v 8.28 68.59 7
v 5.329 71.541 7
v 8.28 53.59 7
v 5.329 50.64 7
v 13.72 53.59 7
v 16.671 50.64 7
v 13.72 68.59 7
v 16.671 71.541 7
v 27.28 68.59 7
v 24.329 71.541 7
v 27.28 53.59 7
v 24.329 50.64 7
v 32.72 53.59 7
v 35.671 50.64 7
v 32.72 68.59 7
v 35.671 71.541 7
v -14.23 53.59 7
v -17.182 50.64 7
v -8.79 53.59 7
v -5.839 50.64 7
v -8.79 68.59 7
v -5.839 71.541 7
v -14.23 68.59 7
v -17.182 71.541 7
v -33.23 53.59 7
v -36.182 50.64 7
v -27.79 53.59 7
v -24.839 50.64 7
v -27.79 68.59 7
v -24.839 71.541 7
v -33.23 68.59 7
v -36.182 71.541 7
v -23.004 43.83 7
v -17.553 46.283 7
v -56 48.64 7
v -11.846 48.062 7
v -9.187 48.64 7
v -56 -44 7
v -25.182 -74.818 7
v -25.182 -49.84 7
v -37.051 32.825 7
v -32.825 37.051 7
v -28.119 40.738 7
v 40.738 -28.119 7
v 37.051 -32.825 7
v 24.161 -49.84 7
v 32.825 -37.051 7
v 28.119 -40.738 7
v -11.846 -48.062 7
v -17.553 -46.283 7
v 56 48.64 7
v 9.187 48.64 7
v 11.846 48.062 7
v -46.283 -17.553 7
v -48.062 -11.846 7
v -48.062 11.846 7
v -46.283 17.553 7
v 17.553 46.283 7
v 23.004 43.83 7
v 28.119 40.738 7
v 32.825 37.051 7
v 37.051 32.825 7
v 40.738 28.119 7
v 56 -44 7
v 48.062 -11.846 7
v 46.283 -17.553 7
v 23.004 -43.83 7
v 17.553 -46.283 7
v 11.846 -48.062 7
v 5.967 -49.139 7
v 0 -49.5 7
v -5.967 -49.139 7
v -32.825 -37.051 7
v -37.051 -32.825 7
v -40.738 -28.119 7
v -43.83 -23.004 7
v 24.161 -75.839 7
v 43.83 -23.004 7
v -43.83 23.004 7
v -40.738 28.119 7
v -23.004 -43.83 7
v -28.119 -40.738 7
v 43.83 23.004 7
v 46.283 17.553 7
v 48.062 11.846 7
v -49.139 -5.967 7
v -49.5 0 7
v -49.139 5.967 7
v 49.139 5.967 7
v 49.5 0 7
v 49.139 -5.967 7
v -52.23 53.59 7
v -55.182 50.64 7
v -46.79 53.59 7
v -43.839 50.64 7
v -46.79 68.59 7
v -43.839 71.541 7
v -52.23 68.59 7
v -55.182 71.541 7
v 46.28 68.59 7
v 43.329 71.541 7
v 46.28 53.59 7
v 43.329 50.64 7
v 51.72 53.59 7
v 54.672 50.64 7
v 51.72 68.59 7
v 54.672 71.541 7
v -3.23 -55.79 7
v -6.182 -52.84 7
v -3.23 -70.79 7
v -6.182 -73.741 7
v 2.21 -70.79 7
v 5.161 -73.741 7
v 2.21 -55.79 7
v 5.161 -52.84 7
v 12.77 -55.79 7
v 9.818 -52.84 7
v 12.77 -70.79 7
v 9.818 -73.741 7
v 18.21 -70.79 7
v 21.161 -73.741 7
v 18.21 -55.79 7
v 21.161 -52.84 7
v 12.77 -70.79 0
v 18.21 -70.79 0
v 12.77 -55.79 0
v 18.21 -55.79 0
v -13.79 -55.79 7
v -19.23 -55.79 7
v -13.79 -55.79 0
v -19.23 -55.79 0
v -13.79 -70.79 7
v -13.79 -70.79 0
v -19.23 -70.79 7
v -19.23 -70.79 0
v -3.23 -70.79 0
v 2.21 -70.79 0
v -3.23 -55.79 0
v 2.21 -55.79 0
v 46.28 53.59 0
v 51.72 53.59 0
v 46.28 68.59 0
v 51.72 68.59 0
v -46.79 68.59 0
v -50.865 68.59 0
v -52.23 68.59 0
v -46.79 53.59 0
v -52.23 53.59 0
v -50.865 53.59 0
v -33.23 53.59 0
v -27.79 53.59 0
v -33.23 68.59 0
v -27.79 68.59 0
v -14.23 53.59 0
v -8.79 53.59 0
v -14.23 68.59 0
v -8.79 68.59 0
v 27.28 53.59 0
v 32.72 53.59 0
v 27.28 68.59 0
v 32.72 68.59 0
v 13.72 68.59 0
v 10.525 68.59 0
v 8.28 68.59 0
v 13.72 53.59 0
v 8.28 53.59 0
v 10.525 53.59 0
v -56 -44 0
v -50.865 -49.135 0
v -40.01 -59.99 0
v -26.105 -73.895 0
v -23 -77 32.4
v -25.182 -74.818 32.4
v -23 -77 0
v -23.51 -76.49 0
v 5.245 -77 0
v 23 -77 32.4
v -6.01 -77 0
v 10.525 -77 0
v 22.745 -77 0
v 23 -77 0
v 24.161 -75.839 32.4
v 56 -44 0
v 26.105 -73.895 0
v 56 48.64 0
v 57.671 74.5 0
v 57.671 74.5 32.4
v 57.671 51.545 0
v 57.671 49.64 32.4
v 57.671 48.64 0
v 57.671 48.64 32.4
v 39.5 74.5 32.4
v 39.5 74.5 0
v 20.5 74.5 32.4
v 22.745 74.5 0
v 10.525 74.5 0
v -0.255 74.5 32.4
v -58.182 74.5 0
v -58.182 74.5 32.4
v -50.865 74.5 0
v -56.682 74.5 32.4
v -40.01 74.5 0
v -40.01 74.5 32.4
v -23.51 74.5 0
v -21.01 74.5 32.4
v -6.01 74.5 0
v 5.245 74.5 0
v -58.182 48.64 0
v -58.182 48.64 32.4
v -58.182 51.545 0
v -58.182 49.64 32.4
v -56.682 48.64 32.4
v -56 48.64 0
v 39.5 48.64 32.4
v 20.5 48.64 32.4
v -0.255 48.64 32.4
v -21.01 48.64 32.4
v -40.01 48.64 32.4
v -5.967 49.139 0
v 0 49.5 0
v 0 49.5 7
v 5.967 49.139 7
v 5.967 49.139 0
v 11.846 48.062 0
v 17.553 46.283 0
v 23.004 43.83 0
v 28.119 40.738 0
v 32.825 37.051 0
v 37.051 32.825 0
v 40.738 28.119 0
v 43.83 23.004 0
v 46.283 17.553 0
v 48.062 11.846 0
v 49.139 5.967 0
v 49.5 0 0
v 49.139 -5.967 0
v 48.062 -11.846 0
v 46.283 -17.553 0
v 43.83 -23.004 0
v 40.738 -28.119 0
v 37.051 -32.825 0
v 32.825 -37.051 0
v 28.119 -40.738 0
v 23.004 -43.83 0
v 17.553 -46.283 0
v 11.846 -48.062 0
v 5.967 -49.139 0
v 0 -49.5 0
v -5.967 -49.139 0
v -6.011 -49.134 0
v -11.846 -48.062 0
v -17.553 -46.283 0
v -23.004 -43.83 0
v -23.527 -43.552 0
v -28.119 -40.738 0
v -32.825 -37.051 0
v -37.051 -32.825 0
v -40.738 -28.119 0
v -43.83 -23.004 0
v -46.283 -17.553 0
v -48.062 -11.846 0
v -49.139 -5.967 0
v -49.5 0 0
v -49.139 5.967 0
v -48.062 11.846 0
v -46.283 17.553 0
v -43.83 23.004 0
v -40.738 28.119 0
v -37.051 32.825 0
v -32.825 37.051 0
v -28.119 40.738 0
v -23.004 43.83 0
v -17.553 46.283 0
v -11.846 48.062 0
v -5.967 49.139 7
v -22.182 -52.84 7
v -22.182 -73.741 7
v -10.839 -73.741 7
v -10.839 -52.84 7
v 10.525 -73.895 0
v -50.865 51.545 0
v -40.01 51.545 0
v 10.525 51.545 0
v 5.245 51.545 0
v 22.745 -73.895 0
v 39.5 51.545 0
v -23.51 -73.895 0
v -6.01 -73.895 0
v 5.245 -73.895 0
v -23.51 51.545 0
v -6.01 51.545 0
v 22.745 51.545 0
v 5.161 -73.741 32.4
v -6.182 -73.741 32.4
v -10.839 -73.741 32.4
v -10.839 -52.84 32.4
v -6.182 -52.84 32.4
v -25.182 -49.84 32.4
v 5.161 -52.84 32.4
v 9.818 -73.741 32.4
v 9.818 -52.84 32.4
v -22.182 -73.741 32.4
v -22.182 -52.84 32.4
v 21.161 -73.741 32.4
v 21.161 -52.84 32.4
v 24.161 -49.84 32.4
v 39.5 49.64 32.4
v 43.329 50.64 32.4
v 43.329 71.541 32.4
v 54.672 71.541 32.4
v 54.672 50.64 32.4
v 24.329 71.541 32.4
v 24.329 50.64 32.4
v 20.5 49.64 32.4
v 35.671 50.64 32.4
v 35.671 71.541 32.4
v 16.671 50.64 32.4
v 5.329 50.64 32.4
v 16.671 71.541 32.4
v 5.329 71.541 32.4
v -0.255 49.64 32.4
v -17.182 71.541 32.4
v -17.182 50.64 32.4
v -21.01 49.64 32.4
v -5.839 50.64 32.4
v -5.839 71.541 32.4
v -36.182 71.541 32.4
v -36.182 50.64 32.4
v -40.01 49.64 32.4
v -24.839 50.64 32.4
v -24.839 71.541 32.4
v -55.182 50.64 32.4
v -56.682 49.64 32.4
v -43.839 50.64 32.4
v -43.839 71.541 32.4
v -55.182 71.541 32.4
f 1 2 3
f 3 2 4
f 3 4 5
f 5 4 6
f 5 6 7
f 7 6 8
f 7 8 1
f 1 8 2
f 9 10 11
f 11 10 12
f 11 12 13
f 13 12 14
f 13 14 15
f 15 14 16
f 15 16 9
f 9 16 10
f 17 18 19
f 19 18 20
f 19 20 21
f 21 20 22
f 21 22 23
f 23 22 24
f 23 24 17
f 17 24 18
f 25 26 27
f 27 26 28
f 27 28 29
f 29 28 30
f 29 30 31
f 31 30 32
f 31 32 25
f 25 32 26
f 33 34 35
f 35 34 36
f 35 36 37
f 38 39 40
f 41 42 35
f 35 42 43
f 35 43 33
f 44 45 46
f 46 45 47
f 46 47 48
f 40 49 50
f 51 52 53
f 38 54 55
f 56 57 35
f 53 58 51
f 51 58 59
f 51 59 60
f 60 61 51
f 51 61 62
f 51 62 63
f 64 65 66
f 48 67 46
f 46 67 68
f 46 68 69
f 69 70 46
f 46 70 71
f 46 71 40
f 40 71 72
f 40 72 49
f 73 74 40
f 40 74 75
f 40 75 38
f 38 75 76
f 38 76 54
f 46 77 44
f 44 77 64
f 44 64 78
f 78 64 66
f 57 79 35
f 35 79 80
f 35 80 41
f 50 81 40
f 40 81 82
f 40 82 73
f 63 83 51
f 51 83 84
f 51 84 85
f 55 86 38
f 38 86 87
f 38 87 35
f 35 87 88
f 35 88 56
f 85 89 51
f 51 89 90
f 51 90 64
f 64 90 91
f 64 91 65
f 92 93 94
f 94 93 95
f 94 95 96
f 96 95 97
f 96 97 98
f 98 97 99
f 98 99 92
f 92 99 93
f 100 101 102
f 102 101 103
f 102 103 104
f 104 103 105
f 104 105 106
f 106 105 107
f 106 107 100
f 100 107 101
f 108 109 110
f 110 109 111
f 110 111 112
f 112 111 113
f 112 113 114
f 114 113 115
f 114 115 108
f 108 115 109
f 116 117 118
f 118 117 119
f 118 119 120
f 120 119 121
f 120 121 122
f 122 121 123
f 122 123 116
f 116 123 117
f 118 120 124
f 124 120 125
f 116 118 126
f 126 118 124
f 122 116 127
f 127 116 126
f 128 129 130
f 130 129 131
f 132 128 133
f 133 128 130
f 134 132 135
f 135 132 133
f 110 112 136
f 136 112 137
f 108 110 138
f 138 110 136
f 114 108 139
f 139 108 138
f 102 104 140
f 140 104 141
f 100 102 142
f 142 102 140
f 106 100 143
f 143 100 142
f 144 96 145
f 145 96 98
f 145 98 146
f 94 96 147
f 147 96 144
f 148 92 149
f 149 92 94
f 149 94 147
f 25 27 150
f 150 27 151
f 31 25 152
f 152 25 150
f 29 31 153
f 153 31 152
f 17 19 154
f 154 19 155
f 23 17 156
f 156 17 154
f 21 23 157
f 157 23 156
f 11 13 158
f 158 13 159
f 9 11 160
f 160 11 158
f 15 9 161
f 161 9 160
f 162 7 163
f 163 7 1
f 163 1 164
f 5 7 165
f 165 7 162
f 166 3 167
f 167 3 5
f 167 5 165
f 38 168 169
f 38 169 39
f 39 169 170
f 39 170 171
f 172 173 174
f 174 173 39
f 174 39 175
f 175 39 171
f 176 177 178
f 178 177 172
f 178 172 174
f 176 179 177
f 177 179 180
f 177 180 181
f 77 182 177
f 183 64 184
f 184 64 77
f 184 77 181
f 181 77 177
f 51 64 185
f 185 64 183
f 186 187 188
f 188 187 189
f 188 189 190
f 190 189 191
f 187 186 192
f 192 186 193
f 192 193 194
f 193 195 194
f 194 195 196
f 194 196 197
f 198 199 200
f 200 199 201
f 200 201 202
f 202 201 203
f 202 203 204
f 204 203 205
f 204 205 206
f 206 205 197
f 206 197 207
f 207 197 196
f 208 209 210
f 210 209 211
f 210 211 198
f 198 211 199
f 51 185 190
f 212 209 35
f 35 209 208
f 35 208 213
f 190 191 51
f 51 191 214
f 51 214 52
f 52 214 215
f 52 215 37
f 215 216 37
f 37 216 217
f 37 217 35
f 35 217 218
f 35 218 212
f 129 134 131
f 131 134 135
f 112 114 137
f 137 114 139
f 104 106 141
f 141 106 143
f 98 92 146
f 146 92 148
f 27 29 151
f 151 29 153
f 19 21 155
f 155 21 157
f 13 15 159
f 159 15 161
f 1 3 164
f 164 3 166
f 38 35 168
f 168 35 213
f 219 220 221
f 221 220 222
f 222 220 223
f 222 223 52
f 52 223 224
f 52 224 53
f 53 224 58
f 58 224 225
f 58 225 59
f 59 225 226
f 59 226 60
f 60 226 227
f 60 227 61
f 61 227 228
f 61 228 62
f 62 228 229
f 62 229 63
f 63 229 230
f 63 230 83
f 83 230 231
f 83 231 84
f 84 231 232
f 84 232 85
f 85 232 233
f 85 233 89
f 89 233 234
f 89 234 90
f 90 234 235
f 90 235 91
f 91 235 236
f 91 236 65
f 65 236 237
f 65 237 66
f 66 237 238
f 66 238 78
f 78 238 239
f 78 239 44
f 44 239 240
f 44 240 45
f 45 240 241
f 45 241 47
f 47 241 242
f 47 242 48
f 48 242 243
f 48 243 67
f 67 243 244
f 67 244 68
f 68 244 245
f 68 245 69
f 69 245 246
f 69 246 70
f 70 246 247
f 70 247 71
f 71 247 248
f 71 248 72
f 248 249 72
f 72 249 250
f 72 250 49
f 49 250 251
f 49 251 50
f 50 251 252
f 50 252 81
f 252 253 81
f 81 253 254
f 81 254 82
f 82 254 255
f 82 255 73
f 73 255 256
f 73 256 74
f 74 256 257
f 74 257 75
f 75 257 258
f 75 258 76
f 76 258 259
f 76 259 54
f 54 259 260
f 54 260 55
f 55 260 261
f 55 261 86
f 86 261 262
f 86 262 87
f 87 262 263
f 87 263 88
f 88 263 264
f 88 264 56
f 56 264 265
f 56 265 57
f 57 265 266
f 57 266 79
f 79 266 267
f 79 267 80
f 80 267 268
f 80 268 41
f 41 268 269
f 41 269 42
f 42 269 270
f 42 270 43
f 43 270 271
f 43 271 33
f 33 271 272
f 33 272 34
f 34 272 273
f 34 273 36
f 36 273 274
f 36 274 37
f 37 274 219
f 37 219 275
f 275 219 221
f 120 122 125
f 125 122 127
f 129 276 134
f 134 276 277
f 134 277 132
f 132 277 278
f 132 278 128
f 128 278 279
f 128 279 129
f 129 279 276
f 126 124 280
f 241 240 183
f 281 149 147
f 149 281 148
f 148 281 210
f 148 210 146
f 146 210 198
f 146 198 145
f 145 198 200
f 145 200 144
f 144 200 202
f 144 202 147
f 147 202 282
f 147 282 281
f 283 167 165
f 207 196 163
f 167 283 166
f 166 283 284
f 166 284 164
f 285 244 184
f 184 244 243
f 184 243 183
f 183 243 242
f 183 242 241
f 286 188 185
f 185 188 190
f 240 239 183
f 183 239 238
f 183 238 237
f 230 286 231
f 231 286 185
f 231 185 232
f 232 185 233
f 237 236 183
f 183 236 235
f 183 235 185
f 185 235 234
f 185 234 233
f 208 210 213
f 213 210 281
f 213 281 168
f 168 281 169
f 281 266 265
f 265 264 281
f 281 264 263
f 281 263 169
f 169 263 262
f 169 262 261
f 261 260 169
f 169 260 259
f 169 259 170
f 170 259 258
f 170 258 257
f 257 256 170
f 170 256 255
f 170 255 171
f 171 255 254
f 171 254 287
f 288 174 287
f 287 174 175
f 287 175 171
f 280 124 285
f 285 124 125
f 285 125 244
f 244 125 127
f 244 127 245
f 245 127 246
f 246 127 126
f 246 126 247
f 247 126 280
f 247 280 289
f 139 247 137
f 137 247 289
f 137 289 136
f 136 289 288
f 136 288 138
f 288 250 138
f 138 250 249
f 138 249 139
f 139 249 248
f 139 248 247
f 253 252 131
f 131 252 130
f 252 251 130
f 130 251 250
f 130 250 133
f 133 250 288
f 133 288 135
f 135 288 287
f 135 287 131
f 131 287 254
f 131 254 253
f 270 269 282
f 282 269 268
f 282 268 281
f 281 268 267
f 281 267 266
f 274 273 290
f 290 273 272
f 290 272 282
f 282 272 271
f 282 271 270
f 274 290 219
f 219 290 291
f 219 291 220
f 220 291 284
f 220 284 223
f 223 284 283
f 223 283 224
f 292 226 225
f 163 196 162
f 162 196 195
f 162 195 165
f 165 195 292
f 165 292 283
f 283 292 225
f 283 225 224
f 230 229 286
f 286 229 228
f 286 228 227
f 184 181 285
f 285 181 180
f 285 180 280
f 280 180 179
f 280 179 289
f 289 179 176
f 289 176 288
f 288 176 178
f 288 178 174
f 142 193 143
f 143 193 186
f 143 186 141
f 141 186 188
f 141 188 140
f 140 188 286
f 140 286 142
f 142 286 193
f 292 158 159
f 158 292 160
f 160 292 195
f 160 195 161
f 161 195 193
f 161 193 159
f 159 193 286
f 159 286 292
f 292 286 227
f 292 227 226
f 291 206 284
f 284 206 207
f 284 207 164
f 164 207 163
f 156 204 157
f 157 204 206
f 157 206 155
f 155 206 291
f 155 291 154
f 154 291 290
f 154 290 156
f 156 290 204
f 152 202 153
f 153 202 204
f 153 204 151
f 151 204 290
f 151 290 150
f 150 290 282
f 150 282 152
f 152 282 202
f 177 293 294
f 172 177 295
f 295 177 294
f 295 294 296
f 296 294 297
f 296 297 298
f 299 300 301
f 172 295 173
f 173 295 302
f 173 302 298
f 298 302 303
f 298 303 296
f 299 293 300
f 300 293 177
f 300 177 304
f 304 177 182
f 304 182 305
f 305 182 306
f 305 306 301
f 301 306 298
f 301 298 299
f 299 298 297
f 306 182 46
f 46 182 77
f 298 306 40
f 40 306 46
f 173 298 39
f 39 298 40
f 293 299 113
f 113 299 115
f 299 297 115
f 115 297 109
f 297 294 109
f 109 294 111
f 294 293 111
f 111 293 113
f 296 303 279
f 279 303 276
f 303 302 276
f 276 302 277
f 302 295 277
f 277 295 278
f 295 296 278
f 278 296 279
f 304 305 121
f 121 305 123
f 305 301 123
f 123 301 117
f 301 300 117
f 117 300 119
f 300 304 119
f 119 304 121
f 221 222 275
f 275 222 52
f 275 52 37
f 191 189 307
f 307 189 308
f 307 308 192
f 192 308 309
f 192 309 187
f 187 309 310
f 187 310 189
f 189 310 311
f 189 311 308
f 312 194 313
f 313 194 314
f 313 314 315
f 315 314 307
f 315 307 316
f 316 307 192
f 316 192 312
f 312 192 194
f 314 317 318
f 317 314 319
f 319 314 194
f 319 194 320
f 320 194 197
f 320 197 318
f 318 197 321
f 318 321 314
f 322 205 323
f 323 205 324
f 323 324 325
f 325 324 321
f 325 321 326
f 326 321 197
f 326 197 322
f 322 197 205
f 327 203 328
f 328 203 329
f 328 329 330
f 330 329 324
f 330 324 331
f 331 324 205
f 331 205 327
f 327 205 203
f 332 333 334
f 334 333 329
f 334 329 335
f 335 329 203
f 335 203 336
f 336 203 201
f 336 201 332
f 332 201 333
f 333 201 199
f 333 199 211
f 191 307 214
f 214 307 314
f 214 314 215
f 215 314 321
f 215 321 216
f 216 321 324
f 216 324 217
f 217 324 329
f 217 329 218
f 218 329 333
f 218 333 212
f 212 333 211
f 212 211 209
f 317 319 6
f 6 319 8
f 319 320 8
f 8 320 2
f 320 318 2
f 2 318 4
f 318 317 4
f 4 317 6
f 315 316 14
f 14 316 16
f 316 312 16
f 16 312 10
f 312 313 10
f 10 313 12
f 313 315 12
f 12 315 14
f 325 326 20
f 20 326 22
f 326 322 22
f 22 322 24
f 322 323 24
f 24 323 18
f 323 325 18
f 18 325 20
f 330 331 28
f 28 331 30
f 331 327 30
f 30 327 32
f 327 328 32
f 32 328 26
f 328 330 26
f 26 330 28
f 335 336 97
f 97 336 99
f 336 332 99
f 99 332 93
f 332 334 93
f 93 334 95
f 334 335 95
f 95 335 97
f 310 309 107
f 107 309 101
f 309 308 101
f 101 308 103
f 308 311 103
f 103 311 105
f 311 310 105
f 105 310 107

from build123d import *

# Parameters (mm, degrees)
SKETCH2_R           = 49.5
SKETCH2_W           = 5.44
SKETCH2_H           = 15
BOSS_EXTRUDE1_DEPTH = 7
BOSS_EXTRUDE2_START = 7
SKETCH2_3_W         = 115.8532
SKETCH2_3_H         = 25.8601
SKETCH2_3_W_2       = 11.343
SKETCH2_3_H_2       = 20.901
BOSS_EXTRUDE2_DEPTH = 25.4


with BuildPart() as part:
    # Sketch2 → Boss-Extrude1 (new body)
    with BuildSketch(Plane.XY):
        Polygon((-58.1817, 74.5), (-58.1817, 48.6399), (-56, 48.6399), (-56, -44), (-23, -77), (23, -77), (56, -44), (56, 48.6399), (57.6715, 48.6399), (57.6715, 74.5), align=None)
        Circle(SKETCH2_R, mode=Mode.SUBTRACT)
        with Locations((-16.5102, -63.2904)):
            Rectangle(SKETCH2_W, SKETCH2_H, mode=Mode.SUBTRACT)
        with Locations((-30.5102, 61.0904)):
            Rectangle(SKETCH2_W, SKETCH2_H, mode=Mode.SUBTRACT)
        with Locations((-49.5102, 61.0904)):
            Rectangle(SKETCH2_W, SKETCH2_H, mode=Mode.SUBTRACT)
        with Locations((-11.5102, 61.0904)):
            Rectangle(SKETCH2_W, SKETCH2_H, mode=Mode.SUBTRACT)
        with Locations((49, 61.0904)):
            Rectangle(SKETCH2_W, SKETCH2_H, mode=Mode.SUBTRACT)
        with Locations((30, 61.0904)):
            Rectangle(SKETCH2_W, SKETCH2_H, mode=Mode.SUBTRACT)
        with Locations((11, 61.0904)):
            Rectangle(SKETCH2_W, SKETCH2_H, mode=Mode.SUBTRACT)
        with Locations((-0.5102, -63.2904)):
            Rectangle(SKETCH2_W, SKETCH2_H, mode=Mode.SUBTRACT)
        with Locations((15.4898, -63.2904)):
            Rectangle(SKETCH2_W, SKETCH2_H, mode=Mode.SUBTRACT)
    extrude(amount=BOSS_EXTRUDE1_DEPTH)

    # Sketch2<3> → Boss-Extrude2 (add)
    # profile 1 of 2: a face of its own
    with BuildSketch(Plane.XY.offset(BOSS_EXTRUDE2_START)):
        with Locations((-0.2551, 61.56995)):
            Rectangle(SKETCH2_3_W, SKETCH2_3_H)
        with Locations((49, 61.0904)):
            Rectangle(SKETCH2_3_W_2, SKETCH2_3_H_2, mode=Mode.SUBTRACT)
        with Locations((-49.5102, 61.0904)):
            Rectangle(SKETCH2_3_W_2, SKETCH2_3_H_2, mode=Mode.SUBTRACT)
        with Locations((-30.5102, 61.0904)):
            Rectangle(SKETCH2_3_W_2, SKETCH2_3_H_2, mode=Mode.SUBTRACT)
        with Locations((-11.5102, 61.0904)):
            Rectangle(SKETCH2_3_W_2, SKETCH2_3_H_2, mode=Mode.SUBTRACT)
        with Locations((11, 61.0904)):
            Rectangle(SKETCH2_3_W_2, SKETCH2_3_H_2, mode=Mode.SUBTRACT)
        with Locations((30, 61.0904)):
            Rectangle(SKETCH2_3_W_2, SKETCH2_3_H_2, mode=Mode.SUBTRACT)
    # profile 2 of 2: a face of its own
    with BuildSketch(Plane.XY.offset(BOSS_EXTRUDE2_START)):
        Polygon((-25.1817, -49.8399), (-25.1817, -74.8183), (-23, -77), (23, -77), (24.1613, -75.8387), (24.1613, -49.8399), align=None)
        with Locations((-16.5102, -63.2904)):
            Rectangle(SKETCH2_3_W_2, SKETCH2_3_H_2, mode=Mode.SUBTRACT)
        with Locations((-0.5102, -63.2904)):
            Rectangle(SKETCH2_3_W_2, SKETCH2_3_H_2, mode=Mode.SUBTRACT)
        with Locations((15.4898, -63.2904)):
            Rectangle(SKETCH2_3_W_2, SKETCH2_3_H_2, mode=Mode.SUBTRACT)
    extrude(amount=BOSS_EXTRUDE2_DEPTH)


solid = part.part
